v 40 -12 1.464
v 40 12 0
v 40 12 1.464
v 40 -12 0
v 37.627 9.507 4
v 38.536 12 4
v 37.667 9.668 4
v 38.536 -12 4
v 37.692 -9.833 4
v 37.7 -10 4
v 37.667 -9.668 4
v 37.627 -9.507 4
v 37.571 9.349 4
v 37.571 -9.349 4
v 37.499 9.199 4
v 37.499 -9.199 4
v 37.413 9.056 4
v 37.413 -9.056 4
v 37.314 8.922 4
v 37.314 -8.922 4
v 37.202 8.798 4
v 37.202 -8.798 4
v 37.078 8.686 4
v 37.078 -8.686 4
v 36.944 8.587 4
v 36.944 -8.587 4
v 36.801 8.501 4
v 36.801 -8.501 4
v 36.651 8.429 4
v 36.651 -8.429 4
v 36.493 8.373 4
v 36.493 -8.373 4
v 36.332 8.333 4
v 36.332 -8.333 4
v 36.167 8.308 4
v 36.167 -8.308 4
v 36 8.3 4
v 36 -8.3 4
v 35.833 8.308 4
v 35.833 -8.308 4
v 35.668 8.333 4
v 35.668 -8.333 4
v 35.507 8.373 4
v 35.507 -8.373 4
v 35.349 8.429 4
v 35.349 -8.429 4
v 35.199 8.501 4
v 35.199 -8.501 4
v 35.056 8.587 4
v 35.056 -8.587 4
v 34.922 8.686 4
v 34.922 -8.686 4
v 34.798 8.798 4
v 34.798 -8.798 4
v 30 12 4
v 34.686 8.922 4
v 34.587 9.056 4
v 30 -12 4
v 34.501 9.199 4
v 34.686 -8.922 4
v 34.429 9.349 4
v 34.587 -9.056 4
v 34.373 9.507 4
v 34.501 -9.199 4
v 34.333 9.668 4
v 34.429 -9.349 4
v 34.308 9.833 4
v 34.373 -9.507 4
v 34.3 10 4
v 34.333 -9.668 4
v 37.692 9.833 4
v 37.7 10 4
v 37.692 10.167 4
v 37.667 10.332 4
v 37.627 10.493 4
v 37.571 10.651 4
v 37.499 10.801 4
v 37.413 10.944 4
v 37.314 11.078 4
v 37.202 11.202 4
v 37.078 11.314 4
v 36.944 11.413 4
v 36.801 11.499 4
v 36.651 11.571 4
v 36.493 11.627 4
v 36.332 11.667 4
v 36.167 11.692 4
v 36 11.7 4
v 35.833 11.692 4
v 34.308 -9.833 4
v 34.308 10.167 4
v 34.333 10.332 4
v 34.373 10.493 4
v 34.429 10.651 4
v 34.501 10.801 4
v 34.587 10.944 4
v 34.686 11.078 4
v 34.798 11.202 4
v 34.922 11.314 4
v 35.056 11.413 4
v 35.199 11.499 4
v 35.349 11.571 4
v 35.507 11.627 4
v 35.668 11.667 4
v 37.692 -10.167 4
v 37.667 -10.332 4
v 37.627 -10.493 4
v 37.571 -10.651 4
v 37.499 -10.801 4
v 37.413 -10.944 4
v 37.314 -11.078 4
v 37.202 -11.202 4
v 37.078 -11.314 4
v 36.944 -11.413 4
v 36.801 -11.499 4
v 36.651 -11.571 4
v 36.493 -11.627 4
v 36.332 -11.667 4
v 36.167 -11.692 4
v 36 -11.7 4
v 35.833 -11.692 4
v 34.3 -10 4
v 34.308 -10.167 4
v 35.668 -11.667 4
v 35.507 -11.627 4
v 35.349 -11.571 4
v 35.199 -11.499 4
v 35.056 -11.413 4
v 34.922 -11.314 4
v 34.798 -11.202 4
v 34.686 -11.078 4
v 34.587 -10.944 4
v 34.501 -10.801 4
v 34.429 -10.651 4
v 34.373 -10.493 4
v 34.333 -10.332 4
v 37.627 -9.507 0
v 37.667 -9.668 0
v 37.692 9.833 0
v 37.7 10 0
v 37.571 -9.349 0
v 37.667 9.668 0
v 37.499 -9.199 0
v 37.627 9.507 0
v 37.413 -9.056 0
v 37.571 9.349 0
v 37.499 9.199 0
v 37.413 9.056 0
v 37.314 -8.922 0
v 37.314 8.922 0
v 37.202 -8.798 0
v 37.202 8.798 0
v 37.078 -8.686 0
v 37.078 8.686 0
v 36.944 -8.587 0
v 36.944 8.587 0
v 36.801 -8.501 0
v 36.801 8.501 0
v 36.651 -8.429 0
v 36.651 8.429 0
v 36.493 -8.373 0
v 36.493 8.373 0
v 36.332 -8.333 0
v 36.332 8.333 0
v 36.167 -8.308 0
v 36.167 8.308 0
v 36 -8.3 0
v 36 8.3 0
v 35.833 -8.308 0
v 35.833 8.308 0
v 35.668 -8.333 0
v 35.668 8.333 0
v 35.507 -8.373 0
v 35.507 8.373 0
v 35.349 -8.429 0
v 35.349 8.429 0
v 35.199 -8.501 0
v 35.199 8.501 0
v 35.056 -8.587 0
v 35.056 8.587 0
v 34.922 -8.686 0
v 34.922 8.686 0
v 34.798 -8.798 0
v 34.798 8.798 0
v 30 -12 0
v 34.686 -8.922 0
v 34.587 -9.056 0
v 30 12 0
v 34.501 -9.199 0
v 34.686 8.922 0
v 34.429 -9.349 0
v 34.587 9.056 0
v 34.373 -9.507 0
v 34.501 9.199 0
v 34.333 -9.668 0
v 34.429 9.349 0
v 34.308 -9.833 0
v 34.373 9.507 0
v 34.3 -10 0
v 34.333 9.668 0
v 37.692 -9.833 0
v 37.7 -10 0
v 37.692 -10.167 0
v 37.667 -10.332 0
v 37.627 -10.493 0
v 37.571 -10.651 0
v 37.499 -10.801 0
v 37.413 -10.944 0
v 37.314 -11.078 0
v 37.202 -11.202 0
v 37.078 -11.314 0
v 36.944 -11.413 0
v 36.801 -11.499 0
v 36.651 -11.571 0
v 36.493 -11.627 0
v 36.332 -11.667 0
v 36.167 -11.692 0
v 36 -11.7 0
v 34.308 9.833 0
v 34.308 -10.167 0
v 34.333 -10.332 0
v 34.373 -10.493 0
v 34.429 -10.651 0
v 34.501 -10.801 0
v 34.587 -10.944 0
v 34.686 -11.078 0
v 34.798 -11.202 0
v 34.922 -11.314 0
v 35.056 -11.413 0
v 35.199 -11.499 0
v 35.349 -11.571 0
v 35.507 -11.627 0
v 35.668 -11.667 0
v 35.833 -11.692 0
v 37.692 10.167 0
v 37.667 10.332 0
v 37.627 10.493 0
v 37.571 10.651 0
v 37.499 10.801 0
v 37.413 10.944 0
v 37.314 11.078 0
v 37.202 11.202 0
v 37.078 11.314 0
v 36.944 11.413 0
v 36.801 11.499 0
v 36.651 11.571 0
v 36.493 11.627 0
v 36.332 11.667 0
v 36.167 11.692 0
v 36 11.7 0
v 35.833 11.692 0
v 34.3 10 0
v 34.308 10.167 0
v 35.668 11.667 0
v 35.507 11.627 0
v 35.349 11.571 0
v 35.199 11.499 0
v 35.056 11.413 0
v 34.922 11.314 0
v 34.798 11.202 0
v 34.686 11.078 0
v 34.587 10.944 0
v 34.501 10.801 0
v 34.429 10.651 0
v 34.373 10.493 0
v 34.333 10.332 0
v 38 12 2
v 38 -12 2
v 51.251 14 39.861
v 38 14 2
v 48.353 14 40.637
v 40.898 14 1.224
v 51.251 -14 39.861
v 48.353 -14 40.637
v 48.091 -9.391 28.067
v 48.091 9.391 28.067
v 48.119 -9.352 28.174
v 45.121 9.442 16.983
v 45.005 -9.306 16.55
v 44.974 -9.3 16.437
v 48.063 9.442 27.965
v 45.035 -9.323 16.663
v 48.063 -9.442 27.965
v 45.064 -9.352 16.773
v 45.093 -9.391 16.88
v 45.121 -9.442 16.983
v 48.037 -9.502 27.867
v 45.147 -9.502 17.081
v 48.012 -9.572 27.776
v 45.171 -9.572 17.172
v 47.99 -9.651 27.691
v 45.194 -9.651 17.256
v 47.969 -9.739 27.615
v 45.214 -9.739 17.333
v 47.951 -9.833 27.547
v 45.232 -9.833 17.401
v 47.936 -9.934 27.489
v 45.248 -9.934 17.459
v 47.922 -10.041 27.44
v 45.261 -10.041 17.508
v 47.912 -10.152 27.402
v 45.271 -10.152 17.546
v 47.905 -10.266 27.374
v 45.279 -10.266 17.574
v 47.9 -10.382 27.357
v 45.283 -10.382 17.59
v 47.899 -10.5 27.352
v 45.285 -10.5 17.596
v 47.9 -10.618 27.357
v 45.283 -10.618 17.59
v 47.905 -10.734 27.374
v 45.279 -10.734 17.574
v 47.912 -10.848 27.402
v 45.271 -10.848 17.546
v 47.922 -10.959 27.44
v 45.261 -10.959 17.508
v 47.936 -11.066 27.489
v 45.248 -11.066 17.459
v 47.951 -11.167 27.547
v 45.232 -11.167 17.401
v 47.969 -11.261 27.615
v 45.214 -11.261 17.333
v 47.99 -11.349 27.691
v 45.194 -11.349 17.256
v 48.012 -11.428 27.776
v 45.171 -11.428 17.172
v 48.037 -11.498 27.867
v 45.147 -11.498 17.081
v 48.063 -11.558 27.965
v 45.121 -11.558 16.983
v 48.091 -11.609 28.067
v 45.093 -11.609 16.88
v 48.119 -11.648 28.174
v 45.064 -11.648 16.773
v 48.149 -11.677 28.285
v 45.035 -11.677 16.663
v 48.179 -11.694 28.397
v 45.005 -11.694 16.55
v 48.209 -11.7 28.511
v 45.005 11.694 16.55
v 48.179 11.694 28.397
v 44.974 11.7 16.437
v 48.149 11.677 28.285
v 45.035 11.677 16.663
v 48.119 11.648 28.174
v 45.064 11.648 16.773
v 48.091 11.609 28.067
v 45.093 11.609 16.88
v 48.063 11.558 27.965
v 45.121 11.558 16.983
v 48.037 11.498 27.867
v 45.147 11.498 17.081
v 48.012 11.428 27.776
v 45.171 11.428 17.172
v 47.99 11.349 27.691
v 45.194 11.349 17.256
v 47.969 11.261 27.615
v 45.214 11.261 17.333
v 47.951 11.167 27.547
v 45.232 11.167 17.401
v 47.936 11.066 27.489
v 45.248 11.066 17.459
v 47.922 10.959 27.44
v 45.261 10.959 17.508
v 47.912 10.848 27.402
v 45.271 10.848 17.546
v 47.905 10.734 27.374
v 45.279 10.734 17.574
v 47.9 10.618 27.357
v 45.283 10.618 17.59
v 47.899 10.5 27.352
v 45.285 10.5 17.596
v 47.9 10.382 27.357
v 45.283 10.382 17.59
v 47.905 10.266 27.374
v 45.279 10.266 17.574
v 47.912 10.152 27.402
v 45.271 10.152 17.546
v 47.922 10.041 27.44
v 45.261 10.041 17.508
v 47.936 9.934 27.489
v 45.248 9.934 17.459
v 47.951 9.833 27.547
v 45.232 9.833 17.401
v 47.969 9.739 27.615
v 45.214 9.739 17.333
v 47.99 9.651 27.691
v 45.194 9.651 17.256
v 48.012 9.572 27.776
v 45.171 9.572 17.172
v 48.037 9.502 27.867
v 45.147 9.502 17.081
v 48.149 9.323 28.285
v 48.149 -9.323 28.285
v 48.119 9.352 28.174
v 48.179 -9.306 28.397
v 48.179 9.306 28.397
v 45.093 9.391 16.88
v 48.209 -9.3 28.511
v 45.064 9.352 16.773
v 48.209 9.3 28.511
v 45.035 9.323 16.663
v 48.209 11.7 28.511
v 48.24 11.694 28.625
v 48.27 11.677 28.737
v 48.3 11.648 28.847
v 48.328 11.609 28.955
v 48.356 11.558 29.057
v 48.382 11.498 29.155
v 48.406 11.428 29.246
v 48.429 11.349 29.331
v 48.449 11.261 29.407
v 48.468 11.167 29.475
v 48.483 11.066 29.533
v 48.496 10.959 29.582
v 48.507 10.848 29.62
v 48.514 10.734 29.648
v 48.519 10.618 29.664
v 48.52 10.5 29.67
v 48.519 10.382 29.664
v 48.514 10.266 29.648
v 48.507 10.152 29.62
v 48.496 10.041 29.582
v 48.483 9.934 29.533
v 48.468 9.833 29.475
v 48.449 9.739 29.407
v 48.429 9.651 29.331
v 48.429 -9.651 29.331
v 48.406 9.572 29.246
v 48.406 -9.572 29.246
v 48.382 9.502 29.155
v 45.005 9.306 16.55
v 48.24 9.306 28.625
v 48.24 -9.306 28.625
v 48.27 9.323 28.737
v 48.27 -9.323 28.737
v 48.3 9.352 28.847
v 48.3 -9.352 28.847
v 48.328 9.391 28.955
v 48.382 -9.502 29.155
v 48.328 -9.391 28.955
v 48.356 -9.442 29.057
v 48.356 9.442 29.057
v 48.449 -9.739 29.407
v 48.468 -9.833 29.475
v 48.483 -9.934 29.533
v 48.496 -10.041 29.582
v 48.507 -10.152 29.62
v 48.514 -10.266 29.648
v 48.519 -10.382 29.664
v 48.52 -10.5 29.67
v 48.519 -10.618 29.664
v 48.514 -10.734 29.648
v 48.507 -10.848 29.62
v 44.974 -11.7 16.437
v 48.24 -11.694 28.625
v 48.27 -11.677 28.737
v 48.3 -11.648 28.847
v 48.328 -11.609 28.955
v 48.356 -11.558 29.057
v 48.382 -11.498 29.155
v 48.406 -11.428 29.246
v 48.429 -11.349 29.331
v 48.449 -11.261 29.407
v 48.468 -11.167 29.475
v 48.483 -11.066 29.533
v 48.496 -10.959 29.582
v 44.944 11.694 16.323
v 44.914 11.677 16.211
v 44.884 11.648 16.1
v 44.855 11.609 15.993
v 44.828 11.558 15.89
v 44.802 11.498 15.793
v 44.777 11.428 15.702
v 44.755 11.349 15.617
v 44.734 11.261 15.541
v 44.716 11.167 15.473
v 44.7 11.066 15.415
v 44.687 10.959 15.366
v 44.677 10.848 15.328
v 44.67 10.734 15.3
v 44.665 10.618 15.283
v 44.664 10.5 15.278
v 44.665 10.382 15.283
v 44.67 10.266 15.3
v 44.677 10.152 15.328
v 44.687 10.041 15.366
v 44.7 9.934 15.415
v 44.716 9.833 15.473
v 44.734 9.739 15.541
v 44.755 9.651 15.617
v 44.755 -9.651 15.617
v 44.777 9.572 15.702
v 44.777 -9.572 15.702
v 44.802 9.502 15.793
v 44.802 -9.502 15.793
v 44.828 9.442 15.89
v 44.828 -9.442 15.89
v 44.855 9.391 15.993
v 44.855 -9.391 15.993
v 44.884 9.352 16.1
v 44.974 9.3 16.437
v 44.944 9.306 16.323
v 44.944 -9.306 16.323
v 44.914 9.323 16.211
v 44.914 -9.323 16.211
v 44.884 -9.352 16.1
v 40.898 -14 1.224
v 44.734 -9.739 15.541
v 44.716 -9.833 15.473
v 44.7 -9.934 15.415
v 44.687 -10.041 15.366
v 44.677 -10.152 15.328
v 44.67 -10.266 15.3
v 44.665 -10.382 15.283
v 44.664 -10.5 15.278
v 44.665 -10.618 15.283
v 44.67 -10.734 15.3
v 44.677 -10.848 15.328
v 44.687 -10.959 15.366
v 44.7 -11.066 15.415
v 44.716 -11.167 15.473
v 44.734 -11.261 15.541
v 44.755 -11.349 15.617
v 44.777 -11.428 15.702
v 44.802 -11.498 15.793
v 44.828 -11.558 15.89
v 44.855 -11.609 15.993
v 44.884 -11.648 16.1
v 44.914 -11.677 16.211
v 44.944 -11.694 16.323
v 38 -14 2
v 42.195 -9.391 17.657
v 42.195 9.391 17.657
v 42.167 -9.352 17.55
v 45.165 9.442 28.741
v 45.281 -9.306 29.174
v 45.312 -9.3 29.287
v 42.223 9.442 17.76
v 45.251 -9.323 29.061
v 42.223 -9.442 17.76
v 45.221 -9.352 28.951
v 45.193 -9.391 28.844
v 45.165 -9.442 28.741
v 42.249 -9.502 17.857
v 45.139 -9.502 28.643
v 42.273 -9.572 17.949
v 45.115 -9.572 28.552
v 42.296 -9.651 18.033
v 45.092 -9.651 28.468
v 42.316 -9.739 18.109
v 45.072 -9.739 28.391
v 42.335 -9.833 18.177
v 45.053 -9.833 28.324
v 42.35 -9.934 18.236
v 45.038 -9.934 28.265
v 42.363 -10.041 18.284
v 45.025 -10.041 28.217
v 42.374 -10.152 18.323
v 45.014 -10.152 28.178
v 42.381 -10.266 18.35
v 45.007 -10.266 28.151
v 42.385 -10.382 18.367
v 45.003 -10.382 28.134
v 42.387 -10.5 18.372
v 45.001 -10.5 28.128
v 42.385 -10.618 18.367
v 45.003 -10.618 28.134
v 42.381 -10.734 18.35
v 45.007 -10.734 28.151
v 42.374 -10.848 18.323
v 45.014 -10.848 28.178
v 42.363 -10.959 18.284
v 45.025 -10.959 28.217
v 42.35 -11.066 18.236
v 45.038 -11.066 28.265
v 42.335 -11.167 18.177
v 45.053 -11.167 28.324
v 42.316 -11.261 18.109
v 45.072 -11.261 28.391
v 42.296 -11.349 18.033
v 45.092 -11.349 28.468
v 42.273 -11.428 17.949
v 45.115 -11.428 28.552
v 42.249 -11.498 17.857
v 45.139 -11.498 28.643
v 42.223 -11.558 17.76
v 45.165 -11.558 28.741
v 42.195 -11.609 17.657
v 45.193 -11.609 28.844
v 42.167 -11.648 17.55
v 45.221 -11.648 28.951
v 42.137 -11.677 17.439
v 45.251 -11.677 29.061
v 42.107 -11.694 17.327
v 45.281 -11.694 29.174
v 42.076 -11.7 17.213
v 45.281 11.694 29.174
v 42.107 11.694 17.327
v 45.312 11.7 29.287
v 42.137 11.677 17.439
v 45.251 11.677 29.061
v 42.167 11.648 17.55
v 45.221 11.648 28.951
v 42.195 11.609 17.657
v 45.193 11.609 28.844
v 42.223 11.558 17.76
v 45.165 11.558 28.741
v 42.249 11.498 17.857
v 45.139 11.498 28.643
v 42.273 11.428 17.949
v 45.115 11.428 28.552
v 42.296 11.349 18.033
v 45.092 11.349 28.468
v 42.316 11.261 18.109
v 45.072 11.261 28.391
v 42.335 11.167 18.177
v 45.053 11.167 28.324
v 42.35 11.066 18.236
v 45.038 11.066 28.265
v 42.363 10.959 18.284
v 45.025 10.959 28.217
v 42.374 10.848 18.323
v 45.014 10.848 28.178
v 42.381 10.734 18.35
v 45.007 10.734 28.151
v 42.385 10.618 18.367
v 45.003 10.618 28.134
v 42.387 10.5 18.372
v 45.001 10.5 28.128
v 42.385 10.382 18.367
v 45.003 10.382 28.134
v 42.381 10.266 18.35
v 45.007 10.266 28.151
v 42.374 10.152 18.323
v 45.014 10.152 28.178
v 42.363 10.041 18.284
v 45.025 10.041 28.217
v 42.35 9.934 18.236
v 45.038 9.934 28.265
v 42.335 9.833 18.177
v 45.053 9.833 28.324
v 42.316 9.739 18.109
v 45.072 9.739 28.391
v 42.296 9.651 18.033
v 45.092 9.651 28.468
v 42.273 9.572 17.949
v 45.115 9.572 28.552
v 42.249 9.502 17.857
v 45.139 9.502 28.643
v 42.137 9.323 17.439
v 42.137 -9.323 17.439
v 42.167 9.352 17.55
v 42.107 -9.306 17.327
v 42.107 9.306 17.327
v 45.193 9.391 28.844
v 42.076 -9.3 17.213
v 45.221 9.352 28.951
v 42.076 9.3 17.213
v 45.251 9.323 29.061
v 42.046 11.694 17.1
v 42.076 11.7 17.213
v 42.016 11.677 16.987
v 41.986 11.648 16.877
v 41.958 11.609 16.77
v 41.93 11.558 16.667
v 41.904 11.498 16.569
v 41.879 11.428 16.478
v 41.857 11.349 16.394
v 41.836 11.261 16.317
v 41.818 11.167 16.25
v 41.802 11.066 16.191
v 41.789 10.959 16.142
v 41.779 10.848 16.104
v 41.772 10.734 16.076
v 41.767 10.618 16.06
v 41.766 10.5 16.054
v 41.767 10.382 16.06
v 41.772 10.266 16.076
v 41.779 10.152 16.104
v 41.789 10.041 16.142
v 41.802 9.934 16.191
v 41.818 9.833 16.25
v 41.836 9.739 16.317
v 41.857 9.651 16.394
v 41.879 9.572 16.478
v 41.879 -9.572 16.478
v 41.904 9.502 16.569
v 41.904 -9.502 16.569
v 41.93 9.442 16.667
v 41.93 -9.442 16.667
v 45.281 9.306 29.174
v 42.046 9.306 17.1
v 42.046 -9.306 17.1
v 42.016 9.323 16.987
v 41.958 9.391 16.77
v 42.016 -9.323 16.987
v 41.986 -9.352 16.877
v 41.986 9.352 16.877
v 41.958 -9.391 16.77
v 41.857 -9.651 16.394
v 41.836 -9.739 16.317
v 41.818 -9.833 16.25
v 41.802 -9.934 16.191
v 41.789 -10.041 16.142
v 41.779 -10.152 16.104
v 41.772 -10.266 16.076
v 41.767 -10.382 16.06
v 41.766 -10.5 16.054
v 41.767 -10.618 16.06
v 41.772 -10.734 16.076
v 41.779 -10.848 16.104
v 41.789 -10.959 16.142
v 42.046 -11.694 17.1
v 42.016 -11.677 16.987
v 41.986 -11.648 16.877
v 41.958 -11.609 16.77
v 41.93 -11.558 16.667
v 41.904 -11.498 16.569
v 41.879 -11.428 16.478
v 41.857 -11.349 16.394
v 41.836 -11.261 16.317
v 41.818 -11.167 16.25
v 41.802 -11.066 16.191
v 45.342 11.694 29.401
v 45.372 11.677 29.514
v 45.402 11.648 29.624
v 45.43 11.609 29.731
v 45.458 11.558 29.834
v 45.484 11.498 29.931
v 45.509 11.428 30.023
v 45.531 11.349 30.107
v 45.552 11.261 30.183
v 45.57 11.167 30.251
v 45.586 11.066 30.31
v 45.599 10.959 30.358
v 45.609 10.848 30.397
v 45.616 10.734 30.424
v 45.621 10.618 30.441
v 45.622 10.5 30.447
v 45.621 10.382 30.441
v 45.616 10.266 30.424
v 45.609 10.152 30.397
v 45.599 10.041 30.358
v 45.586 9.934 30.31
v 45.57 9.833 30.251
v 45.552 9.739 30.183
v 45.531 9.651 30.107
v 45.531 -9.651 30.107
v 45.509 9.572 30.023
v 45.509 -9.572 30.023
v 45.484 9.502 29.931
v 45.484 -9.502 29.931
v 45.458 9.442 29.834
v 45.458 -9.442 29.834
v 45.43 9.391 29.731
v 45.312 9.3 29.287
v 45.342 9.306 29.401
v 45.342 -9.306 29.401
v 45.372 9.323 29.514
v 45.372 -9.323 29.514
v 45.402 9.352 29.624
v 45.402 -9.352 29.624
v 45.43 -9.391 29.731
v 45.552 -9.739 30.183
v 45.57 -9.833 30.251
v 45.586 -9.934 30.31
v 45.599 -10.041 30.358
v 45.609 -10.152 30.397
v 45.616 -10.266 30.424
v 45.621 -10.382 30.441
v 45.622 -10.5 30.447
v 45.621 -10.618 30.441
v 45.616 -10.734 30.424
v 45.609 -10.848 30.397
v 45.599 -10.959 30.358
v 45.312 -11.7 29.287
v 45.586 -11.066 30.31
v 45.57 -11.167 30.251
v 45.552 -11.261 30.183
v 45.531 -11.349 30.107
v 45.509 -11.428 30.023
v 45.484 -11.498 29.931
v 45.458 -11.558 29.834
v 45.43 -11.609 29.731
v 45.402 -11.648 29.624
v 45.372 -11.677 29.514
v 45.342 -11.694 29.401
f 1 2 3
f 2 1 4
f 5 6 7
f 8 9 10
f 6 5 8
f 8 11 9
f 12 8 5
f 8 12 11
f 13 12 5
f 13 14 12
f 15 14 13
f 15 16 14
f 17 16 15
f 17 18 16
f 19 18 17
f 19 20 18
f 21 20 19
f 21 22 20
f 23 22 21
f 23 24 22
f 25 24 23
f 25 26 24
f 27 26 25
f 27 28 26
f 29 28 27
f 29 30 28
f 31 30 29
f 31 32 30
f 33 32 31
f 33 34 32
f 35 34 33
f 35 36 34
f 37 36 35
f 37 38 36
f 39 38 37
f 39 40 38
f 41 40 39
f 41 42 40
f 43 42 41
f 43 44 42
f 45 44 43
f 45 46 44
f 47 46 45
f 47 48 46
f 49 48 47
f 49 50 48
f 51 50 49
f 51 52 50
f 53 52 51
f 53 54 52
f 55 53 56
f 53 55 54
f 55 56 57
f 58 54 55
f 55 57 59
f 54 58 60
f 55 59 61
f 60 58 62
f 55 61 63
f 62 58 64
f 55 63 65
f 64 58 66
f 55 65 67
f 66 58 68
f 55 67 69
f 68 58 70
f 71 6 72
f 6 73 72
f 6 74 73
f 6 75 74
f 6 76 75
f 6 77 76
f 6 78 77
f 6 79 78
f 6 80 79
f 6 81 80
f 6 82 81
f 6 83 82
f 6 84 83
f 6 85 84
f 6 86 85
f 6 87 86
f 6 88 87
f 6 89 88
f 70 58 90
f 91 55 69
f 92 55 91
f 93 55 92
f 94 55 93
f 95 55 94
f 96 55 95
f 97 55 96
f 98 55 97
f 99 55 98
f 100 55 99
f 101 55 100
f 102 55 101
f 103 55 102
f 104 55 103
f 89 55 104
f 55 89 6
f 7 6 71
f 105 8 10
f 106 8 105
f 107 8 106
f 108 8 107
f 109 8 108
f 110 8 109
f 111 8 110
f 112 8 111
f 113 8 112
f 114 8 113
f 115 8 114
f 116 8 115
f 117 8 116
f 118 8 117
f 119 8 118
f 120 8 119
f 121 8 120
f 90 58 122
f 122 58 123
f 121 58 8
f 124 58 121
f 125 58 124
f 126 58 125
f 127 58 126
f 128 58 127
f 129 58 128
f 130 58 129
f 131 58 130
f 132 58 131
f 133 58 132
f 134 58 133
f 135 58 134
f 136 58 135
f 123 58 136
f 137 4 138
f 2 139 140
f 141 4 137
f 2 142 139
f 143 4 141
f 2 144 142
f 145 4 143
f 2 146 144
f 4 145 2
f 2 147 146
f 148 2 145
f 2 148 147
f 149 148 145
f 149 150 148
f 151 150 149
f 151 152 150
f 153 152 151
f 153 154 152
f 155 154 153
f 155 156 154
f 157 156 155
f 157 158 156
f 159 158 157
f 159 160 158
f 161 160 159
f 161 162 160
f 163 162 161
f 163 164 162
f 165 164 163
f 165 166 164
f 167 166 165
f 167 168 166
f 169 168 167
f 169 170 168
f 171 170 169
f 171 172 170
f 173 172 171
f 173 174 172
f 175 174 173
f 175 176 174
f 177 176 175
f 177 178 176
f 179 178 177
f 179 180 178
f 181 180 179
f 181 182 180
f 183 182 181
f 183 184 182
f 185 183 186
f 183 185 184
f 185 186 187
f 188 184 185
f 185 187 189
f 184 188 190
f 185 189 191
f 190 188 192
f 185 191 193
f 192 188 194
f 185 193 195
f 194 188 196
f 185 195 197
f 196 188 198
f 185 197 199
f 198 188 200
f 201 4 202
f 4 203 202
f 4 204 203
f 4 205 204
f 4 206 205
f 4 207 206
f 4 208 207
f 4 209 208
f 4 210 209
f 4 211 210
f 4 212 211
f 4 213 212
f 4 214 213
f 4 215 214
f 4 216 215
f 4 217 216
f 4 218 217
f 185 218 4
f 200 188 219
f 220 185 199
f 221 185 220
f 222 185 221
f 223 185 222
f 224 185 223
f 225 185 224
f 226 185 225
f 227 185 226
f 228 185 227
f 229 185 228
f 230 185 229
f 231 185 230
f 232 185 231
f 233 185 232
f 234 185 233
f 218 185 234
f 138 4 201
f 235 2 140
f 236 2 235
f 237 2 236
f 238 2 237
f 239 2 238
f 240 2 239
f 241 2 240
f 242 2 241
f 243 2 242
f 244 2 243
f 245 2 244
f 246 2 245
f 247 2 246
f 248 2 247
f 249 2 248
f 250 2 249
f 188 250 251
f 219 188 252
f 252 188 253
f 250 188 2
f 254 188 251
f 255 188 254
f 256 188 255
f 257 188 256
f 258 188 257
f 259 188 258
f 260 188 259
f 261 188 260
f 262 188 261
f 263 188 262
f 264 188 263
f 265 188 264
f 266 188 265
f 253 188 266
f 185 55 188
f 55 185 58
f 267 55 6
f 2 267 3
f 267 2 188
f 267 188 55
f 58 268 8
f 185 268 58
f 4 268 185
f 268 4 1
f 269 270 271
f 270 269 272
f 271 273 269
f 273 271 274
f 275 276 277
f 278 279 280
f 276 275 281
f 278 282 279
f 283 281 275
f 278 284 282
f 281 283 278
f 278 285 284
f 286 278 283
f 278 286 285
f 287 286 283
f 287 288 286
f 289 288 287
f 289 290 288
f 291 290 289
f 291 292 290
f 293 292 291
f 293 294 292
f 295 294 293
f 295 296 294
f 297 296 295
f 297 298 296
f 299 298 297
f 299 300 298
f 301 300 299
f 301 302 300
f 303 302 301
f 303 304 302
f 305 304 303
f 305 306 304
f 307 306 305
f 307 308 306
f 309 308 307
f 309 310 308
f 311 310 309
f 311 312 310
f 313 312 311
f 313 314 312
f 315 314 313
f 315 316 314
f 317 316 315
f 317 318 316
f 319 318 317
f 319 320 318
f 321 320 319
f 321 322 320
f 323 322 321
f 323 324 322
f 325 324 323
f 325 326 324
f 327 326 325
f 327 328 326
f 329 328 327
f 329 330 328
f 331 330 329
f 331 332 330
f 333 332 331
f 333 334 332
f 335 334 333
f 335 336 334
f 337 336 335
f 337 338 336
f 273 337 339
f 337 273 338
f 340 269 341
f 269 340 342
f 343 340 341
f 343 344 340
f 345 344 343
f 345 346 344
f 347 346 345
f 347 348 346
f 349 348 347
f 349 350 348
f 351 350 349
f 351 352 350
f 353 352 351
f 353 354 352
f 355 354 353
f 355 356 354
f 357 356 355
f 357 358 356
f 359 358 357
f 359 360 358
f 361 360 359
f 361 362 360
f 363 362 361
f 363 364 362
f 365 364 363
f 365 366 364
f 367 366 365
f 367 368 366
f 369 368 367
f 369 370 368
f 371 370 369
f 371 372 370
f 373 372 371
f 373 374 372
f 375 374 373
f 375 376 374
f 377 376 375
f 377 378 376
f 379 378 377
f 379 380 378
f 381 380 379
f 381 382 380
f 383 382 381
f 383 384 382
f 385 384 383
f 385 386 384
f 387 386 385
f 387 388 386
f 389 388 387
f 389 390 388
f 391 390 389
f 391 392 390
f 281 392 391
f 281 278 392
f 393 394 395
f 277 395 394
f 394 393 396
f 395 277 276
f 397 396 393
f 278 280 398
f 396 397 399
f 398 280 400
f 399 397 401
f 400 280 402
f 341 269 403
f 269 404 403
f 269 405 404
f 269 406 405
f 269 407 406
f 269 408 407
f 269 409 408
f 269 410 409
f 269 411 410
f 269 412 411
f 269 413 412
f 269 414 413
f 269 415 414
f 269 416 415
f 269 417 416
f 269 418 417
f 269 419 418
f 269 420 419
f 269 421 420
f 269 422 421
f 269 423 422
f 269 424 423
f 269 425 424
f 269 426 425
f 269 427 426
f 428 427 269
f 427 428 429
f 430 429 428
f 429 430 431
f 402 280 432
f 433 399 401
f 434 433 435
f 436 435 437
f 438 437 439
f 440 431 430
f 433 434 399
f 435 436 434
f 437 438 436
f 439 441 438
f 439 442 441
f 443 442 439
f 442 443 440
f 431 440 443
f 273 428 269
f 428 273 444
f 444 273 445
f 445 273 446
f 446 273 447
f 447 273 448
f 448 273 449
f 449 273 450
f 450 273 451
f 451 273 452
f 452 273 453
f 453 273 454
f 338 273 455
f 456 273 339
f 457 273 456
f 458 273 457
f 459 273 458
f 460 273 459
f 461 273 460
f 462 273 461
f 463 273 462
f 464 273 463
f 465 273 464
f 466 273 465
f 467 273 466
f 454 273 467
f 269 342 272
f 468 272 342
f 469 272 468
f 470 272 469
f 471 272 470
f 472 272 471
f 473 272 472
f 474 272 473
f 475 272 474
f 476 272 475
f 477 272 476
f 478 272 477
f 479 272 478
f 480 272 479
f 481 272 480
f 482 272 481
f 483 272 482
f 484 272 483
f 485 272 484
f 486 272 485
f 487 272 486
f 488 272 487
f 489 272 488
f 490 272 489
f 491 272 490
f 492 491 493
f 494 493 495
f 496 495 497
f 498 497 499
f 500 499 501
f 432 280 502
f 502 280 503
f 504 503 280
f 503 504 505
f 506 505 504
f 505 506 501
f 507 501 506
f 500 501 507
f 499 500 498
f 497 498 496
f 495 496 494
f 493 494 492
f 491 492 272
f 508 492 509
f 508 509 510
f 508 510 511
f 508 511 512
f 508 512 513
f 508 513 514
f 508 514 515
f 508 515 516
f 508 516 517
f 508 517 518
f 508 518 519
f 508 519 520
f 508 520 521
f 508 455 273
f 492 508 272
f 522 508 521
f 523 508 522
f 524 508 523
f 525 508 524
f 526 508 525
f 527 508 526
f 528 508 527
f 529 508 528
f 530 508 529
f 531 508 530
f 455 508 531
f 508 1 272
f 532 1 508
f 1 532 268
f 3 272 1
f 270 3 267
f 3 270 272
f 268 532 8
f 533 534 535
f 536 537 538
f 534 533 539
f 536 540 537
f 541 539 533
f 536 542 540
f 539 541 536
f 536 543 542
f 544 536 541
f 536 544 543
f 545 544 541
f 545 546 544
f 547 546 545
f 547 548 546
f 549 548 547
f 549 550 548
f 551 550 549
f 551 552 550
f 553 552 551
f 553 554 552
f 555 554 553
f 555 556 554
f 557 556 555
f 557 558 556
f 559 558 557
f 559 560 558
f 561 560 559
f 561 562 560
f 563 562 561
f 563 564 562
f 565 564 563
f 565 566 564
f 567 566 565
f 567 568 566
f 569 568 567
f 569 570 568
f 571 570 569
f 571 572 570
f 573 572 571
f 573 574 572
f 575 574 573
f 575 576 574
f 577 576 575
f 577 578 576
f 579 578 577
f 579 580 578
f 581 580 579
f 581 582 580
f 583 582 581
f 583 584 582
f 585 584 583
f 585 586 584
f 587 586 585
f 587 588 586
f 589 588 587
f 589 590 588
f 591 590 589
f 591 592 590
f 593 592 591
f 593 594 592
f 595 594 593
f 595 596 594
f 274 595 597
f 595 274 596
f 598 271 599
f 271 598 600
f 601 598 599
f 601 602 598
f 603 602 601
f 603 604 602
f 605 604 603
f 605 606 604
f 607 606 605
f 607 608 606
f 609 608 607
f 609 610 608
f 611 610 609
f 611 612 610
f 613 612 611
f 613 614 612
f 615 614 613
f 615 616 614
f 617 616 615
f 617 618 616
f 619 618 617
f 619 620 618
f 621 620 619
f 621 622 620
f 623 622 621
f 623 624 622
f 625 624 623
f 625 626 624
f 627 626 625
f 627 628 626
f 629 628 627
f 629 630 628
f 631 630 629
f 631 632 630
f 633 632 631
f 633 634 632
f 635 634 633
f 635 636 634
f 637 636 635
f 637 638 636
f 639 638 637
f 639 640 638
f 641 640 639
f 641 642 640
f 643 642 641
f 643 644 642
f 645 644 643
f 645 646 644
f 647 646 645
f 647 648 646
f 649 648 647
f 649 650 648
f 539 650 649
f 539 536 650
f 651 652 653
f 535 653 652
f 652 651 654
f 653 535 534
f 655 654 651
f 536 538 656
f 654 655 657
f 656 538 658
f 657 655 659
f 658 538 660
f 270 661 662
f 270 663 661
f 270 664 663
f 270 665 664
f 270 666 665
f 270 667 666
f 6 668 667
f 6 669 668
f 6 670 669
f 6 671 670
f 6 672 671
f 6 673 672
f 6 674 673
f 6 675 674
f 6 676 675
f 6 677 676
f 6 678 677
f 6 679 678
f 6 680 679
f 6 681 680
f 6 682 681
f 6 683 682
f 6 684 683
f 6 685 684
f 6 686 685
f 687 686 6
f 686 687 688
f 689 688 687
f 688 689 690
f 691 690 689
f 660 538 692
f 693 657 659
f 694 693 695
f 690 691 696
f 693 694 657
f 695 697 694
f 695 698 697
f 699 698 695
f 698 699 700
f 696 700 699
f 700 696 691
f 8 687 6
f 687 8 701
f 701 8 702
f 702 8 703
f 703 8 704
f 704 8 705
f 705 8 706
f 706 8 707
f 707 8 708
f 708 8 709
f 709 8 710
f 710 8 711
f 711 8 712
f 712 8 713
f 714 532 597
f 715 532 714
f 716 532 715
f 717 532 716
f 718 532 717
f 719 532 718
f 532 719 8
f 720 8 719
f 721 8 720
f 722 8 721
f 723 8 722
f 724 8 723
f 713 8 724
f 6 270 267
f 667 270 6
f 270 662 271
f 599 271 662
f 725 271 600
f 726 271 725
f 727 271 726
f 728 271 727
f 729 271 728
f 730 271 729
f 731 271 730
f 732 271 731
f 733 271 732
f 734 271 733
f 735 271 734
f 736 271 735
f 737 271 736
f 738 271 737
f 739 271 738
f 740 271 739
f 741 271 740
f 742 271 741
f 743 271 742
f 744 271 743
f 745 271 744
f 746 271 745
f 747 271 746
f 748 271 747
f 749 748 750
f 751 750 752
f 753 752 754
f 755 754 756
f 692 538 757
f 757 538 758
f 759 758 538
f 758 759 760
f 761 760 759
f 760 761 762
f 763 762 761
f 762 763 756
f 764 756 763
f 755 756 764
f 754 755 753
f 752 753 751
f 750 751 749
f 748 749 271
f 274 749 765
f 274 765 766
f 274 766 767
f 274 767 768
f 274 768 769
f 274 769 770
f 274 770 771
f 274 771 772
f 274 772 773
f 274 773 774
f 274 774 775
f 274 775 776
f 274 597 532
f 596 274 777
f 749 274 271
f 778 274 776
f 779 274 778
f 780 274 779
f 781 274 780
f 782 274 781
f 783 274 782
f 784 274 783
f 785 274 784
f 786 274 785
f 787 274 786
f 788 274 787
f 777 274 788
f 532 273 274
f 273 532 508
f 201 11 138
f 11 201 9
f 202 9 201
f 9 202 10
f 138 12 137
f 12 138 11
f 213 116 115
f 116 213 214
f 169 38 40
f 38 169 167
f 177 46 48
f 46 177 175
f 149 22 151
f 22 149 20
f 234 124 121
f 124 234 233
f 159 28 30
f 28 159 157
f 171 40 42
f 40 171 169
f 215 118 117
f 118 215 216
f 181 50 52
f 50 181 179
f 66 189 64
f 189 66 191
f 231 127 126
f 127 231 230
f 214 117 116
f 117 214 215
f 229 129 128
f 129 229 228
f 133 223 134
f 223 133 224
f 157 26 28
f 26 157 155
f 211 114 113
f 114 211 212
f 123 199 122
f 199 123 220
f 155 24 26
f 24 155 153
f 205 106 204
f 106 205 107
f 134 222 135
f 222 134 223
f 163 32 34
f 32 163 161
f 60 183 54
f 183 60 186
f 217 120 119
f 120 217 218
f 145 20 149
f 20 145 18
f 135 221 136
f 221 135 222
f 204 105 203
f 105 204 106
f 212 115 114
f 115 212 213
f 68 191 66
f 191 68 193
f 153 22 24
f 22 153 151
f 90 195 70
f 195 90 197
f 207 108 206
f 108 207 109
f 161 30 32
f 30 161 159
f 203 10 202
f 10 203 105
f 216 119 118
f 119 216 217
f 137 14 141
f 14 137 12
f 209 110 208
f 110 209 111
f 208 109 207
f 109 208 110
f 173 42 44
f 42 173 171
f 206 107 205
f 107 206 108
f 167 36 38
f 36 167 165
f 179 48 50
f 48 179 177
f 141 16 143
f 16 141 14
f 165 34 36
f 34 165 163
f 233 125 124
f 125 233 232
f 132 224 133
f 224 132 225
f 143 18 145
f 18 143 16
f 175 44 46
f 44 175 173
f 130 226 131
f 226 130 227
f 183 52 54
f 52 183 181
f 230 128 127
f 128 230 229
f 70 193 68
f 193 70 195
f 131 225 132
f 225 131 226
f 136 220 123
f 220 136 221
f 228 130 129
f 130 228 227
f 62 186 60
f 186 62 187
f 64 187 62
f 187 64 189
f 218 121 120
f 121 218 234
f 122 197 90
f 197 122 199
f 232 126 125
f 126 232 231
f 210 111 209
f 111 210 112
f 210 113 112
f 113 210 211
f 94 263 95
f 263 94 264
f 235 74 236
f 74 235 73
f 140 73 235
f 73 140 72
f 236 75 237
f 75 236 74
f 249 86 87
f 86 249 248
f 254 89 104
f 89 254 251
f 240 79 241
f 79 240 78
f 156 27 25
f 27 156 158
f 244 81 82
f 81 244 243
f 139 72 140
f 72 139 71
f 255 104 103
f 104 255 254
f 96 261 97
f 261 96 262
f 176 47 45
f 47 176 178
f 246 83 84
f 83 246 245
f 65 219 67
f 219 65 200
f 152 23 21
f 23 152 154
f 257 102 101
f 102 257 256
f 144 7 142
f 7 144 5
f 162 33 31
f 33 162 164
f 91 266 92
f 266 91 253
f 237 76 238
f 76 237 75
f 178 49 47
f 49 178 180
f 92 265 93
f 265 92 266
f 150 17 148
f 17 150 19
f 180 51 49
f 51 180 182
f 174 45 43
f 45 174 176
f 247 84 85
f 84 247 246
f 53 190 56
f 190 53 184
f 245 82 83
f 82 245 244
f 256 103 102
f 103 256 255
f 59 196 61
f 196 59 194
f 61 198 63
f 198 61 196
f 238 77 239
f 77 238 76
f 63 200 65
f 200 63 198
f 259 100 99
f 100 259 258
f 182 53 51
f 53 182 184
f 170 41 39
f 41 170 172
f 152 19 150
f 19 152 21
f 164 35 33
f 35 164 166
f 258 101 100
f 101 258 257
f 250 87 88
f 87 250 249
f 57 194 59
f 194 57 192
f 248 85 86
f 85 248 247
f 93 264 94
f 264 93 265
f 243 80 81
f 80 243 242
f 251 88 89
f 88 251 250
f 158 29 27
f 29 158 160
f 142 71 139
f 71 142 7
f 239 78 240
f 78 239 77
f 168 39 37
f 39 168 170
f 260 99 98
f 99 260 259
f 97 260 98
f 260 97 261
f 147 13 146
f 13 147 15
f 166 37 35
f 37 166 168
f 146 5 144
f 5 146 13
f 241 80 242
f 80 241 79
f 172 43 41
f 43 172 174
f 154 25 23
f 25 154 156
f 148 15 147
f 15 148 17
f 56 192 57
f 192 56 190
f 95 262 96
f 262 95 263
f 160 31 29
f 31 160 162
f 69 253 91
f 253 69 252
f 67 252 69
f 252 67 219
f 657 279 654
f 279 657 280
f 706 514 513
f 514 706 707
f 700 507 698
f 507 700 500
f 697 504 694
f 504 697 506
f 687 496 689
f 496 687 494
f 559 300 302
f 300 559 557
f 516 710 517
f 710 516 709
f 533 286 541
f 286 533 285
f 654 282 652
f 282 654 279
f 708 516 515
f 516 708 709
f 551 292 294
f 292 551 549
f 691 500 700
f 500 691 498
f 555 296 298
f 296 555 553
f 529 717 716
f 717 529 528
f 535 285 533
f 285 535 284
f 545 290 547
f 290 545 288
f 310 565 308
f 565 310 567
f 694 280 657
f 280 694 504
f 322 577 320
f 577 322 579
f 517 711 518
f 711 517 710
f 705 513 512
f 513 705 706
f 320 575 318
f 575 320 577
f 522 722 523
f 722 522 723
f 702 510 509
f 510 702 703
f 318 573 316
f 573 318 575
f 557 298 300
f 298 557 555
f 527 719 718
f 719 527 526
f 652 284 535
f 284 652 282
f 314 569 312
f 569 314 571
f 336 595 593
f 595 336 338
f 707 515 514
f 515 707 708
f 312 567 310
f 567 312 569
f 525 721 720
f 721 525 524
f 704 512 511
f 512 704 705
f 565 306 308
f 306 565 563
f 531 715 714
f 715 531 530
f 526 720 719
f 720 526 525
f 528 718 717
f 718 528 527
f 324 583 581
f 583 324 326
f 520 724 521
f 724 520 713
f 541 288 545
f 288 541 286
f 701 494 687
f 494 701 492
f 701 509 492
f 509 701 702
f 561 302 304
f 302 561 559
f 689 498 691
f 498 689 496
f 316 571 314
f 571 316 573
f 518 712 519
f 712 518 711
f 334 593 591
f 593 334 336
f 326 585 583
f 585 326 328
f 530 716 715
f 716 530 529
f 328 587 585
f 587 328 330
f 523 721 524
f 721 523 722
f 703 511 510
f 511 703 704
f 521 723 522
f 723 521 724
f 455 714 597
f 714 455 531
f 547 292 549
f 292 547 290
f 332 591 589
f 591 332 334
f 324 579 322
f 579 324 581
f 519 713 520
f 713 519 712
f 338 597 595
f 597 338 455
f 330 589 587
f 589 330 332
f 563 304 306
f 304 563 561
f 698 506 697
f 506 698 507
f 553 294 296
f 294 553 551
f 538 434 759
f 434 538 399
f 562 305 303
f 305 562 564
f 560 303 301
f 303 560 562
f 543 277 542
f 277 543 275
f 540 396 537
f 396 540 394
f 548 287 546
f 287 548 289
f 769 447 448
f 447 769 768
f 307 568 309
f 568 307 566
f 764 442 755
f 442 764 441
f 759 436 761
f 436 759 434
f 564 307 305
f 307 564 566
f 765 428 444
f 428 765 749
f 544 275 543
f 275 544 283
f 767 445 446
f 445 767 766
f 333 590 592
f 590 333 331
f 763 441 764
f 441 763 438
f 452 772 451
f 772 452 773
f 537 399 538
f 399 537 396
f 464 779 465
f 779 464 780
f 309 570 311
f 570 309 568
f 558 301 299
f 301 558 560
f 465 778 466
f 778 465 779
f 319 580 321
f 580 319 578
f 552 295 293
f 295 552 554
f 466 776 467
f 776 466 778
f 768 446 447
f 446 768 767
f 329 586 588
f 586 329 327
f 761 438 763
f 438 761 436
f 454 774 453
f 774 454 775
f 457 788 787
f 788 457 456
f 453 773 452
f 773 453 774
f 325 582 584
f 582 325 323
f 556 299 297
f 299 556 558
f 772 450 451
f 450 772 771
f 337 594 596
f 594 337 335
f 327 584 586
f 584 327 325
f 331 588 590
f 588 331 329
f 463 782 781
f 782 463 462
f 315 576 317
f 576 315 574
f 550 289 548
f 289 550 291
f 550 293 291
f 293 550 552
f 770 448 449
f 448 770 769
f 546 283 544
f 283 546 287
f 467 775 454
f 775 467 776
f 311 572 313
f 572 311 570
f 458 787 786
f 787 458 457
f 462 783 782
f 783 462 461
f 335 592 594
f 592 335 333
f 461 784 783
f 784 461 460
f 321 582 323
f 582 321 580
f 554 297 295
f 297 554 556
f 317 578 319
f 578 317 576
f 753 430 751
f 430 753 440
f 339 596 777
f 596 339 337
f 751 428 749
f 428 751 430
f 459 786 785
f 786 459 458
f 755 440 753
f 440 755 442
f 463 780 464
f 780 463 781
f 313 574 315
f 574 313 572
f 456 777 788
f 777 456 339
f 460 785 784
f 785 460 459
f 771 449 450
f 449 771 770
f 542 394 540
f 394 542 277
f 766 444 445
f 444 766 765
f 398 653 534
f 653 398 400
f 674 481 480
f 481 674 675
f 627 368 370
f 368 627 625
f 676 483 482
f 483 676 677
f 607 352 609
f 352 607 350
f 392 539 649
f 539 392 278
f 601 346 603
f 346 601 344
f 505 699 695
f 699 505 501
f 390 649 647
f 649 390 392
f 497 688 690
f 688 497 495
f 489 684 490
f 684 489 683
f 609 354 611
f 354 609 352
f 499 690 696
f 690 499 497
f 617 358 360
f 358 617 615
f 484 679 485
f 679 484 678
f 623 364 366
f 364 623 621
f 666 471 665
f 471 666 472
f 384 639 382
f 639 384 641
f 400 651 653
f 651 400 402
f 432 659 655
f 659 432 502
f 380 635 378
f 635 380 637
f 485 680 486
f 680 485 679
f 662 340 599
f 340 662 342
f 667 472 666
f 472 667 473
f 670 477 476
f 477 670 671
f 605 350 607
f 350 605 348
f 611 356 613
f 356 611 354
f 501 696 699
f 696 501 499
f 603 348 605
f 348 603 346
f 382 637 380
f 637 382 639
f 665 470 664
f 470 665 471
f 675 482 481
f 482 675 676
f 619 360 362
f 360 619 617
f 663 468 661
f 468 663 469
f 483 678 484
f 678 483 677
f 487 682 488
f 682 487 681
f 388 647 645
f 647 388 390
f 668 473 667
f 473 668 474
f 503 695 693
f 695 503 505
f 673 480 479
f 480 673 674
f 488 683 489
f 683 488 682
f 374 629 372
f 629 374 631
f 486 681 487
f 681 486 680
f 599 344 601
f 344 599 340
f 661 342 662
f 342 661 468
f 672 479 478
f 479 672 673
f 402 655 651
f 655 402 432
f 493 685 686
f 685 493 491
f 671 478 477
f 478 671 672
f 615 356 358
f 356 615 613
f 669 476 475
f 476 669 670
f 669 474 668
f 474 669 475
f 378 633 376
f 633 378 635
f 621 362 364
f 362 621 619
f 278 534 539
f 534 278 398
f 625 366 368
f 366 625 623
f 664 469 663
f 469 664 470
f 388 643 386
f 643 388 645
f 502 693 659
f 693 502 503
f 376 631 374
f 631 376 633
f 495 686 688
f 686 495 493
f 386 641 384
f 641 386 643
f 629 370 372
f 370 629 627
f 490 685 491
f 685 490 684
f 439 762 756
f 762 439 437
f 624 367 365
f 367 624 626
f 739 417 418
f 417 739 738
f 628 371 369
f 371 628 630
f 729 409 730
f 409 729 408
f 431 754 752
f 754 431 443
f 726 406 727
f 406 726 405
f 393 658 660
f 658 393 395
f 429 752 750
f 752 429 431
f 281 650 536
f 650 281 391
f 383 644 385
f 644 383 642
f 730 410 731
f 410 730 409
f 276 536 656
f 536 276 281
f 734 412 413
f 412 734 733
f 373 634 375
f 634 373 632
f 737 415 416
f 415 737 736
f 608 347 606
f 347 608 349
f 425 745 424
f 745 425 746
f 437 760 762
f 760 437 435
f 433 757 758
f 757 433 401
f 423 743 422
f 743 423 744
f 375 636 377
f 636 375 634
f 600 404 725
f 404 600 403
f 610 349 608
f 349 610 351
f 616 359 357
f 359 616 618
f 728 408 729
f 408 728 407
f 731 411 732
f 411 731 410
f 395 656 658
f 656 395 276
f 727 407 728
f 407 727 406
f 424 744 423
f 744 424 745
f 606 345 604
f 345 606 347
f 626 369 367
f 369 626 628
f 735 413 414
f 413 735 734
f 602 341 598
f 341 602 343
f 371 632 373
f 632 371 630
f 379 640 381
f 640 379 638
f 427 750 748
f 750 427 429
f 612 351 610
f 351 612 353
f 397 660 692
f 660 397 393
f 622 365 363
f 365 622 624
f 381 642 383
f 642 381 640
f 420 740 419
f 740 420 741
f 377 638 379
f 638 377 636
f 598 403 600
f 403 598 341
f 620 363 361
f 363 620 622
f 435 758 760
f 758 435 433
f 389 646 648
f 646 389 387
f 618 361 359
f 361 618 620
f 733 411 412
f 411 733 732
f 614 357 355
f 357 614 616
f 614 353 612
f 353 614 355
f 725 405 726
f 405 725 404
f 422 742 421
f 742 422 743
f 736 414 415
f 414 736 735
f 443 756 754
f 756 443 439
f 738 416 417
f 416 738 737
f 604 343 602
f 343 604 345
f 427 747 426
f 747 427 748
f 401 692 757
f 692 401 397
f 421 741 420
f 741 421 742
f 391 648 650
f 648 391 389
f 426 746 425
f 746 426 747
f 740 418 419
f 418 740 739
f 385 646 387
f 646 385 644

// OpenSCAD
// file: ../lib.scad
// Solar Rover - shared helper modules
include <config.scad>

// Rounded rectangle plate, centred in XY, sitting on Z=0.
module rbox(size, r=4) {
    x = size[0]; y = size[1]; z = size[2];
    hull() for (sx=[-1,1], sy=[-1,1])
        translate([sx*(x/2-r), sy*(y/2-r), 0]) cylinder(r=r, h=z);
}

// Vertical hole through everything (subtract). Centred on the origin.
module hole(d, h=200) { translate([0,0,-h/2]) cylinder(d=d, h=h); }

// Heat-set insert pocket opening upward at Z=top.
module insert_m3(top) { translate([0,0,top-m3_insert_h]) cylinder(d=m3_insert_d, h=m3_insert_h+0.01); }
module insert_m25(top) { translate([0,0,top-4.5]) cylinder(d=m25_insert_d, h=4.51); }

// Boss for an insert: cylinder from z0 to z1, with insert pocket at the top.
module insert_boss_m3(z0, z1, od=8) {
    difference() {
        translate([0,0,z0]) cylinder(d=od, h=z1-z0);
        insert_m3(z1);
    }
}

// Slot of length l (centre-to-centre) along X, diameter d.
module slot(l, d, h=200) {
    hull() for (sx=[-1,1]) translate([sx*l/2,0,-h/2]) cylinder(d=d, h=h);
}

// Counterbored M3 clearance hole, head at Z=top going down.
module m3_cbore(top, depth=m3_head_h) {
    hole(m3_clear);
    translate([0,0,top-depth]) cylinder(d=m3_head_d, h=depth+50);
}

// Captive hex nut pocket, opening at Z=z (nut goes in from that face).
module m3_nut_pocket(z, depth=m3_nut_h+0.4) {
    translate([0,0,z-depth]) cylinder(d=m3_nut_af/cos(30), h=depth+0.01, $fn=6);
}

// Pair of zip-tie slots (for modules without mounting holes), spaced s apart along X.
module zip_slots(s=30, w=4, l=2.2) {
    for (sx=[-1,1]) translate([sx*s/2,0,0]) cube([l, w, 50], center=true);
}

// D-shaped bore for TT motor shafts.
module d_bore(h=50, extra=0) {
    intersection() {
        cylinder(d=tt_shaft_d+extra, h=h);
        translate([-(tt_shaft_d+extra)/2, -(tt_shaft_flat+extra)/2, 0])
            cube([tt_shaft_d+extra, tt_shaft_flat+extra, h]);
    }
}

// Simple spur gear (trapezoid teeth), module m, z teeth, thickness t. Good enough
// for a slow servo gripper; not a precision involute.
module spur_gear(m=1.25, z=16, t=6, bore=0) {
    rp = m*z/2; ra = rp + m; rf = rp - 1.25*m;
    difference() {
        linear_extrude(t) union() {
            circle(r=rf, $fn=z*4);
            for (i=[0:z-1]) rotate(i*360/z)
                polygon([[rf*cos(-90/z*1.1), rf*sin(-90/z*1.1)],
                         [ra*cos(-90/z*0.45), ra*sin(-90/z*0.45)],
                         [ra*cos( 90/z*0.45), ra*sin( 90/z*0.45)],
                         [rf*cos( 90/z*1.1), rf*sin( 90/z*1.1)]]);
        }
        if (bore > 0) hole(bore);
    }
}

// Servo pocket for an MG996R lying with its output axis along +Z.
// Case centred so the OUTPUT SHAFT is at the origin; case top at Z=0.
module mg996_case_neg(extra=tol) {
    translate([-mg996_shaft_off-extra, -mg996_w/2-extra, -mg996_h-extra])
        cube([mg996_l+2*extra, mg996_w+2*extra, mg996_h+extra+0.01]);
}
module mg996_flange_holes(d=m3_clear, h=60) {
    cx = mg996_l/2 - mg996_shaft_off;
    for (sx=[-1,1], sy=[-1,1])
        translate([cx+sx*mg996_hole_dx/2, sy*mg996_hole_dy/2, -h/2]) cylinder(d=d, h=h);
}
module mg90_case_neg(extra=tol) {
    translate([-mg90_shaft_off-extra, -mg90_w/2-extra, -mg90_h-extra])
        cube([mg90_l+2*extra, mg90_w+2*extra, mg90_h+extra+0.01]);
}
module mg90_flange_holes(d=m2_pilot, h=60) {
    cx = mg90_l/2 - mg90_shaft_off;
    for (sx=[-1,1]) translate([cx+sx*mg90_hole_dx/2, 0, -h/2]) cylinder(d=d, h=h);
}
// Round MG996R horn screw pattern (4 holes) + centre relief.
module mg996_horn_holes(d=m3_clear) {
    hole(9);
    for (a=[0:90:270]) rotate(a) translate([mg996_horn_hole_r,0,0]) hole(d);
}
// file: ../config.scad
// Solar Rover - shared dimensions (all mm)
// Coordinate system: X = forward, Y = left, Z = up. Origin = deck centre, ground at Z=0.
//
// Values marked MEASURE come from typical datasheets/clones and vary between
// suppliers. Measure your parts with calipers and edit them here before printing;
// every part reads its dimensions from this file.

$fn = 64;

// ---------- print / fit ----------
tol        = 0.25;   // general clearance per side
wall       = 2.4;    // default wall (6 perimeters at 0.4 mm nozzle)

// ---------- fasteners ----------
m3_clear     = 3.4;   // M3 clearance hole
m3_insert_d  = 4.1;   // hole for M3x5x4 brass heat-set insert (OD ~4.6)
m3_insert_h  = 5.5;   // insert hole depth
m3_head_d    = 6.2;   // socket head counterbore
m3_head_h    = 3.2;
m3_nut_af    = 5.6;   // nut across flats (+clearance)
m3_nut_h     = 2.6;
m25_clear    = 2.9;
m25_insert_d = 3.5;   // M2.5 insert hole (OD ~4.0)
m2_clear     = 2.4;
m2_pilot     = 1.7;   // pilot hole for M2 thread-forming screw

// ---------- deck ----------
deck_l     = 300;     // printed as two 150 mm halves
deck_w     = 146;
deck_t     = 4;
rib_h      = 8;
rib_w      = 2.4;
flange_h   = 14;      // joint flange (bolts the halves together)
flange_t   = 5;

// ---------- drive ----------
wheel_d       = 65;
wheel_w       = 26;
axle_z        = wheel_d/2;    // axle height above ground
axle_x        = 100;          // front axle at +axle_x, rear at -axle_x
// TT gear motor (dual-shaft, 1:48). MEASURE.
tt_body_l     = 64;           // along X (gearbox + motor can)
tt_body_t     = 22.5;         // along Y (shaft direction)
tt_body_h     = 18.8;         // along Z
tt_shaft_from_end = 11.3;     // shaft centre to gearbox front end
tt_shaft_d    = 5.4;          // D-shaft across round
tt_shaft_flat = 3.7;          // D-shaft across flats
tt_shaft_len  = 9;            // per side, beyond the body face
// two through-holes parallel to the shaft, positions relative to shaft centre [x, z]. MEASURE.
tt_holes      = [[-20.0, 5.5], [-20.0, -5.5]];
motor_outer_y = 72;           // motor face nearest the wheel
clamp_t       = 3;            // clamp plate thickness
deck_bottom_z = axle_z + tt_body_h/2 + clamp_t;   // 44.6
deck_top_z    = deck_bottom_z + deck_t;

// ---------- encoder ----------
enc_slots   = 20;
enc_disc_d  = 22;
enc_disc_t  = 1.6;

// ---------- turret / arm ----------
turret_x      = 108;
turret_d      = 84;           // base OD; top plate skirt overlaps it
turret_h      = 48;           // fixed base height above deck (servo hangs inside)
turret_deck_r = 30;           // 4x M3 at 45/135/225/315 deg: turret base to deck
turret_bolts  = [[20,28],[-20,28],[20,-28],[-20,-28]];  // module interface on the turret top (4x M3)
shoulder_z    = 45;           // shoulder axis above the turret top plate
// MG996R servo. MEASURE.
mg996_l   = 40.7;  mg996_w = 19.7;  mg996_h = 37.0;   // case (h = to top of case)
mg996_flange_l = 54.5; mg996_flange_z = 27.5;  mg996_flange_t = 2.5;
mg996_hole_dx = 49.5; mg996_hole_dy = 10.0; mg996_hole_d = 4.5;
mg996_shaft_off = 10.0;       // output shaft centre from case end
mg996_spline_h  = 6.0;        // case top to horn face
mg996_horn_d    = 22;         // round metal horn
mg996_horn_hole_r = 7.5;      // horn screw circle radius (MEASURE: usually 4 holes)
// MG90S servo. MEASURE.
mg90_l = 22.8; mg90_w = 12.2; mg90_h = 22.7;
mg90_flange_l = 32.5; mg90_flange_z = 16.0; mg90_flange_t = 2.5;
mg90_hole_dx = 27.6; mg90_hole_d = 2.0;
mg90_shaft_off = 6.0;
mg90_spline_h = 5.0;
mg90_horn_d = 7;              // horn hub (single-arm horn)

link_upper = 100;   // shoulder -> elbow
link_fore  = 90;    // elbow -> wrist
link_hand  = 70;    // wrist -> fingertip

// ---------- power / electronics ----------
cell_holder = [77, 80, 21];   // 4x18650 holder footprint. MEASURE.
pi0_holes   = [58, 23];       // Raspberry Pi Zero 2 W, M2.5
pca_holes   = [55.9, 19.0];   // Adafruit-style PCA9685, M2.5. MEASURE (clones vary)
esp_exp_holes = [47, 70];     // ESP32 38-pin screw-terminal expansion board (77x54 mm), M3. MEASURE.
cradle_tb6612 = [20.5, 20.5];  // TB6612FNG breakout board outline. MEASURE.
cradle_mp1584 = [22.4, 17.0];  // MP1584 mini buck outline. MEASURE.
module_slot_w = 2.6;          // module-plate slots: M2/M2.5 screw + nut, or a 2.5 mm zip tie
tray_standoff_h = 32;         // power tray top to logic tray underside
// charge tray: a slotted plate on 4 legs over the battery holder
charge_tray_c    = [-106, 0];         // centre on the deck (same as the battery holder)
charge_tray_size = [76, 102];         // X, Y
charge_tray_z    = 24;                // deck top to plate underside (holder is 21 mm tall)
charge_tray_legs = [for (x=[-34,28], sy=[-1,1]) [x, sy*46]];   // relative to the centre; the front pair clears the motor-clamp inserts

// ---------- body / solar ----------
panel     = [110, 136, 3];    // 6V 2W panel: X, Y, thickness. MEASURE.
roof_post_h = 75;             // deck top to roof tray underside (room for plugged-in jumpers)
tray_frame  = 4;
roof_front_x = 60;            // front tray spans -60..60, rear tray -180..-60
// main file
// Camera mount (print 1) for the Pi camera (OV5647 "Zero" board, 25x24 mm,
// 4x M2 on 21 x 12.5 mm). Bolts to the two inserts at the front of the turret top
// (2x M3x8). Looks forward, tilted 15 degrees down. Print base-down; the 15 degree lean needs no supports.
include <../config.scad>
use <../lib.scad>
tilt = 15;
difference() {
    union() {
        translate([30,-12,0]) cube([10, 24, 4]);
        translate([38,0,2]) rotate([0,tilt,0]) translate([0,-14,0]) cube([3, 28, 40]);
    }
    for (y=[-10,10]) translate([36,y,0]) hole(m3_clear);
    translate([38,0,2]) rotate([0,tilt,0]) for (y=[-10.5,10.5], zz=[22-6.25, 22+6.25])
        translate([0,y,zz]) rotate([0,90,0]) hole(m2_clear, 20);
    translate([-50,-50,-20]) cube([200,100,20]);
}
